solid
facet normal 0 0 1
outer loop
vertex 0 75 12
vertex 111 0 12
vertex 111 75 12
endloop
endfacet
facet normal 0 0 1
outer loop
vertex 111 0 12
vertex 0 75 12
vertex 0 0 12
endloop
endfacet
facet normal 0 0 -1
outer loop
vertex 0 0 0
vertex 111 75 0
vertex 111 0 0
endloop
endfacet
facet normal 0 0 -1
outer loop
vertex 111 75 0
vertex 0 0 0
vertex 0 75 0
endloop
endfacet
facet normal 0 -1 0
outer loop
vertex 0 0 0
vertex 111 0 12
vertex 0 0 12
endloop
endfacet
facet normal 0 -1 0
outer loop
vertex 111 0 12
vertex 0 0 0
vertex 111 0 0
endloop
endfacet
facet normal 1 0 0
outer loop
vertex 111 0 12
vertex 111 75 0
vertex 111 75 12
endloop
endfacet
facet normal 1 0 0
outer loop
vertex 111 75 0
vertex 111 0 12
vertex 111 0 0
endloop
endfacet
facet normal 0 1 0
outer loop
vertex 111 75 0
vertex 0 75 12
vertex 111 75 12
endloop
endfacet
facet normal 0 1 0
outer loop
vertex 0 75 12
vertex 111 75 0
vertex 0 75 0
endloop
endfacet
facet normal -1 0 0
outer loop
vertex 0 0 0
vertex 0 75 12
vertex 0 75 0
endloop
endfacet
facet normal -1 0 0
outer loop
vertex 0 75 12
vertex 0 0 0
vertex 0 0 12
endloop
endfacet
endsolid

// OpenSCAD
// Opentrons Universal Flat Heater-Shaker Adapter
// loadName: opentrons_universal_flat_adapter
// Auto-generated by labware_to_stl.py from Opentrons V2 labware definition

$fn = 64;

difference() {
    // ── Labware body ──────────────────────────────────────────────
    cube([111.0000, 75.0000, 12.0000]);

    // ── Well cutouts ──────────────────────────────────────────────
}
